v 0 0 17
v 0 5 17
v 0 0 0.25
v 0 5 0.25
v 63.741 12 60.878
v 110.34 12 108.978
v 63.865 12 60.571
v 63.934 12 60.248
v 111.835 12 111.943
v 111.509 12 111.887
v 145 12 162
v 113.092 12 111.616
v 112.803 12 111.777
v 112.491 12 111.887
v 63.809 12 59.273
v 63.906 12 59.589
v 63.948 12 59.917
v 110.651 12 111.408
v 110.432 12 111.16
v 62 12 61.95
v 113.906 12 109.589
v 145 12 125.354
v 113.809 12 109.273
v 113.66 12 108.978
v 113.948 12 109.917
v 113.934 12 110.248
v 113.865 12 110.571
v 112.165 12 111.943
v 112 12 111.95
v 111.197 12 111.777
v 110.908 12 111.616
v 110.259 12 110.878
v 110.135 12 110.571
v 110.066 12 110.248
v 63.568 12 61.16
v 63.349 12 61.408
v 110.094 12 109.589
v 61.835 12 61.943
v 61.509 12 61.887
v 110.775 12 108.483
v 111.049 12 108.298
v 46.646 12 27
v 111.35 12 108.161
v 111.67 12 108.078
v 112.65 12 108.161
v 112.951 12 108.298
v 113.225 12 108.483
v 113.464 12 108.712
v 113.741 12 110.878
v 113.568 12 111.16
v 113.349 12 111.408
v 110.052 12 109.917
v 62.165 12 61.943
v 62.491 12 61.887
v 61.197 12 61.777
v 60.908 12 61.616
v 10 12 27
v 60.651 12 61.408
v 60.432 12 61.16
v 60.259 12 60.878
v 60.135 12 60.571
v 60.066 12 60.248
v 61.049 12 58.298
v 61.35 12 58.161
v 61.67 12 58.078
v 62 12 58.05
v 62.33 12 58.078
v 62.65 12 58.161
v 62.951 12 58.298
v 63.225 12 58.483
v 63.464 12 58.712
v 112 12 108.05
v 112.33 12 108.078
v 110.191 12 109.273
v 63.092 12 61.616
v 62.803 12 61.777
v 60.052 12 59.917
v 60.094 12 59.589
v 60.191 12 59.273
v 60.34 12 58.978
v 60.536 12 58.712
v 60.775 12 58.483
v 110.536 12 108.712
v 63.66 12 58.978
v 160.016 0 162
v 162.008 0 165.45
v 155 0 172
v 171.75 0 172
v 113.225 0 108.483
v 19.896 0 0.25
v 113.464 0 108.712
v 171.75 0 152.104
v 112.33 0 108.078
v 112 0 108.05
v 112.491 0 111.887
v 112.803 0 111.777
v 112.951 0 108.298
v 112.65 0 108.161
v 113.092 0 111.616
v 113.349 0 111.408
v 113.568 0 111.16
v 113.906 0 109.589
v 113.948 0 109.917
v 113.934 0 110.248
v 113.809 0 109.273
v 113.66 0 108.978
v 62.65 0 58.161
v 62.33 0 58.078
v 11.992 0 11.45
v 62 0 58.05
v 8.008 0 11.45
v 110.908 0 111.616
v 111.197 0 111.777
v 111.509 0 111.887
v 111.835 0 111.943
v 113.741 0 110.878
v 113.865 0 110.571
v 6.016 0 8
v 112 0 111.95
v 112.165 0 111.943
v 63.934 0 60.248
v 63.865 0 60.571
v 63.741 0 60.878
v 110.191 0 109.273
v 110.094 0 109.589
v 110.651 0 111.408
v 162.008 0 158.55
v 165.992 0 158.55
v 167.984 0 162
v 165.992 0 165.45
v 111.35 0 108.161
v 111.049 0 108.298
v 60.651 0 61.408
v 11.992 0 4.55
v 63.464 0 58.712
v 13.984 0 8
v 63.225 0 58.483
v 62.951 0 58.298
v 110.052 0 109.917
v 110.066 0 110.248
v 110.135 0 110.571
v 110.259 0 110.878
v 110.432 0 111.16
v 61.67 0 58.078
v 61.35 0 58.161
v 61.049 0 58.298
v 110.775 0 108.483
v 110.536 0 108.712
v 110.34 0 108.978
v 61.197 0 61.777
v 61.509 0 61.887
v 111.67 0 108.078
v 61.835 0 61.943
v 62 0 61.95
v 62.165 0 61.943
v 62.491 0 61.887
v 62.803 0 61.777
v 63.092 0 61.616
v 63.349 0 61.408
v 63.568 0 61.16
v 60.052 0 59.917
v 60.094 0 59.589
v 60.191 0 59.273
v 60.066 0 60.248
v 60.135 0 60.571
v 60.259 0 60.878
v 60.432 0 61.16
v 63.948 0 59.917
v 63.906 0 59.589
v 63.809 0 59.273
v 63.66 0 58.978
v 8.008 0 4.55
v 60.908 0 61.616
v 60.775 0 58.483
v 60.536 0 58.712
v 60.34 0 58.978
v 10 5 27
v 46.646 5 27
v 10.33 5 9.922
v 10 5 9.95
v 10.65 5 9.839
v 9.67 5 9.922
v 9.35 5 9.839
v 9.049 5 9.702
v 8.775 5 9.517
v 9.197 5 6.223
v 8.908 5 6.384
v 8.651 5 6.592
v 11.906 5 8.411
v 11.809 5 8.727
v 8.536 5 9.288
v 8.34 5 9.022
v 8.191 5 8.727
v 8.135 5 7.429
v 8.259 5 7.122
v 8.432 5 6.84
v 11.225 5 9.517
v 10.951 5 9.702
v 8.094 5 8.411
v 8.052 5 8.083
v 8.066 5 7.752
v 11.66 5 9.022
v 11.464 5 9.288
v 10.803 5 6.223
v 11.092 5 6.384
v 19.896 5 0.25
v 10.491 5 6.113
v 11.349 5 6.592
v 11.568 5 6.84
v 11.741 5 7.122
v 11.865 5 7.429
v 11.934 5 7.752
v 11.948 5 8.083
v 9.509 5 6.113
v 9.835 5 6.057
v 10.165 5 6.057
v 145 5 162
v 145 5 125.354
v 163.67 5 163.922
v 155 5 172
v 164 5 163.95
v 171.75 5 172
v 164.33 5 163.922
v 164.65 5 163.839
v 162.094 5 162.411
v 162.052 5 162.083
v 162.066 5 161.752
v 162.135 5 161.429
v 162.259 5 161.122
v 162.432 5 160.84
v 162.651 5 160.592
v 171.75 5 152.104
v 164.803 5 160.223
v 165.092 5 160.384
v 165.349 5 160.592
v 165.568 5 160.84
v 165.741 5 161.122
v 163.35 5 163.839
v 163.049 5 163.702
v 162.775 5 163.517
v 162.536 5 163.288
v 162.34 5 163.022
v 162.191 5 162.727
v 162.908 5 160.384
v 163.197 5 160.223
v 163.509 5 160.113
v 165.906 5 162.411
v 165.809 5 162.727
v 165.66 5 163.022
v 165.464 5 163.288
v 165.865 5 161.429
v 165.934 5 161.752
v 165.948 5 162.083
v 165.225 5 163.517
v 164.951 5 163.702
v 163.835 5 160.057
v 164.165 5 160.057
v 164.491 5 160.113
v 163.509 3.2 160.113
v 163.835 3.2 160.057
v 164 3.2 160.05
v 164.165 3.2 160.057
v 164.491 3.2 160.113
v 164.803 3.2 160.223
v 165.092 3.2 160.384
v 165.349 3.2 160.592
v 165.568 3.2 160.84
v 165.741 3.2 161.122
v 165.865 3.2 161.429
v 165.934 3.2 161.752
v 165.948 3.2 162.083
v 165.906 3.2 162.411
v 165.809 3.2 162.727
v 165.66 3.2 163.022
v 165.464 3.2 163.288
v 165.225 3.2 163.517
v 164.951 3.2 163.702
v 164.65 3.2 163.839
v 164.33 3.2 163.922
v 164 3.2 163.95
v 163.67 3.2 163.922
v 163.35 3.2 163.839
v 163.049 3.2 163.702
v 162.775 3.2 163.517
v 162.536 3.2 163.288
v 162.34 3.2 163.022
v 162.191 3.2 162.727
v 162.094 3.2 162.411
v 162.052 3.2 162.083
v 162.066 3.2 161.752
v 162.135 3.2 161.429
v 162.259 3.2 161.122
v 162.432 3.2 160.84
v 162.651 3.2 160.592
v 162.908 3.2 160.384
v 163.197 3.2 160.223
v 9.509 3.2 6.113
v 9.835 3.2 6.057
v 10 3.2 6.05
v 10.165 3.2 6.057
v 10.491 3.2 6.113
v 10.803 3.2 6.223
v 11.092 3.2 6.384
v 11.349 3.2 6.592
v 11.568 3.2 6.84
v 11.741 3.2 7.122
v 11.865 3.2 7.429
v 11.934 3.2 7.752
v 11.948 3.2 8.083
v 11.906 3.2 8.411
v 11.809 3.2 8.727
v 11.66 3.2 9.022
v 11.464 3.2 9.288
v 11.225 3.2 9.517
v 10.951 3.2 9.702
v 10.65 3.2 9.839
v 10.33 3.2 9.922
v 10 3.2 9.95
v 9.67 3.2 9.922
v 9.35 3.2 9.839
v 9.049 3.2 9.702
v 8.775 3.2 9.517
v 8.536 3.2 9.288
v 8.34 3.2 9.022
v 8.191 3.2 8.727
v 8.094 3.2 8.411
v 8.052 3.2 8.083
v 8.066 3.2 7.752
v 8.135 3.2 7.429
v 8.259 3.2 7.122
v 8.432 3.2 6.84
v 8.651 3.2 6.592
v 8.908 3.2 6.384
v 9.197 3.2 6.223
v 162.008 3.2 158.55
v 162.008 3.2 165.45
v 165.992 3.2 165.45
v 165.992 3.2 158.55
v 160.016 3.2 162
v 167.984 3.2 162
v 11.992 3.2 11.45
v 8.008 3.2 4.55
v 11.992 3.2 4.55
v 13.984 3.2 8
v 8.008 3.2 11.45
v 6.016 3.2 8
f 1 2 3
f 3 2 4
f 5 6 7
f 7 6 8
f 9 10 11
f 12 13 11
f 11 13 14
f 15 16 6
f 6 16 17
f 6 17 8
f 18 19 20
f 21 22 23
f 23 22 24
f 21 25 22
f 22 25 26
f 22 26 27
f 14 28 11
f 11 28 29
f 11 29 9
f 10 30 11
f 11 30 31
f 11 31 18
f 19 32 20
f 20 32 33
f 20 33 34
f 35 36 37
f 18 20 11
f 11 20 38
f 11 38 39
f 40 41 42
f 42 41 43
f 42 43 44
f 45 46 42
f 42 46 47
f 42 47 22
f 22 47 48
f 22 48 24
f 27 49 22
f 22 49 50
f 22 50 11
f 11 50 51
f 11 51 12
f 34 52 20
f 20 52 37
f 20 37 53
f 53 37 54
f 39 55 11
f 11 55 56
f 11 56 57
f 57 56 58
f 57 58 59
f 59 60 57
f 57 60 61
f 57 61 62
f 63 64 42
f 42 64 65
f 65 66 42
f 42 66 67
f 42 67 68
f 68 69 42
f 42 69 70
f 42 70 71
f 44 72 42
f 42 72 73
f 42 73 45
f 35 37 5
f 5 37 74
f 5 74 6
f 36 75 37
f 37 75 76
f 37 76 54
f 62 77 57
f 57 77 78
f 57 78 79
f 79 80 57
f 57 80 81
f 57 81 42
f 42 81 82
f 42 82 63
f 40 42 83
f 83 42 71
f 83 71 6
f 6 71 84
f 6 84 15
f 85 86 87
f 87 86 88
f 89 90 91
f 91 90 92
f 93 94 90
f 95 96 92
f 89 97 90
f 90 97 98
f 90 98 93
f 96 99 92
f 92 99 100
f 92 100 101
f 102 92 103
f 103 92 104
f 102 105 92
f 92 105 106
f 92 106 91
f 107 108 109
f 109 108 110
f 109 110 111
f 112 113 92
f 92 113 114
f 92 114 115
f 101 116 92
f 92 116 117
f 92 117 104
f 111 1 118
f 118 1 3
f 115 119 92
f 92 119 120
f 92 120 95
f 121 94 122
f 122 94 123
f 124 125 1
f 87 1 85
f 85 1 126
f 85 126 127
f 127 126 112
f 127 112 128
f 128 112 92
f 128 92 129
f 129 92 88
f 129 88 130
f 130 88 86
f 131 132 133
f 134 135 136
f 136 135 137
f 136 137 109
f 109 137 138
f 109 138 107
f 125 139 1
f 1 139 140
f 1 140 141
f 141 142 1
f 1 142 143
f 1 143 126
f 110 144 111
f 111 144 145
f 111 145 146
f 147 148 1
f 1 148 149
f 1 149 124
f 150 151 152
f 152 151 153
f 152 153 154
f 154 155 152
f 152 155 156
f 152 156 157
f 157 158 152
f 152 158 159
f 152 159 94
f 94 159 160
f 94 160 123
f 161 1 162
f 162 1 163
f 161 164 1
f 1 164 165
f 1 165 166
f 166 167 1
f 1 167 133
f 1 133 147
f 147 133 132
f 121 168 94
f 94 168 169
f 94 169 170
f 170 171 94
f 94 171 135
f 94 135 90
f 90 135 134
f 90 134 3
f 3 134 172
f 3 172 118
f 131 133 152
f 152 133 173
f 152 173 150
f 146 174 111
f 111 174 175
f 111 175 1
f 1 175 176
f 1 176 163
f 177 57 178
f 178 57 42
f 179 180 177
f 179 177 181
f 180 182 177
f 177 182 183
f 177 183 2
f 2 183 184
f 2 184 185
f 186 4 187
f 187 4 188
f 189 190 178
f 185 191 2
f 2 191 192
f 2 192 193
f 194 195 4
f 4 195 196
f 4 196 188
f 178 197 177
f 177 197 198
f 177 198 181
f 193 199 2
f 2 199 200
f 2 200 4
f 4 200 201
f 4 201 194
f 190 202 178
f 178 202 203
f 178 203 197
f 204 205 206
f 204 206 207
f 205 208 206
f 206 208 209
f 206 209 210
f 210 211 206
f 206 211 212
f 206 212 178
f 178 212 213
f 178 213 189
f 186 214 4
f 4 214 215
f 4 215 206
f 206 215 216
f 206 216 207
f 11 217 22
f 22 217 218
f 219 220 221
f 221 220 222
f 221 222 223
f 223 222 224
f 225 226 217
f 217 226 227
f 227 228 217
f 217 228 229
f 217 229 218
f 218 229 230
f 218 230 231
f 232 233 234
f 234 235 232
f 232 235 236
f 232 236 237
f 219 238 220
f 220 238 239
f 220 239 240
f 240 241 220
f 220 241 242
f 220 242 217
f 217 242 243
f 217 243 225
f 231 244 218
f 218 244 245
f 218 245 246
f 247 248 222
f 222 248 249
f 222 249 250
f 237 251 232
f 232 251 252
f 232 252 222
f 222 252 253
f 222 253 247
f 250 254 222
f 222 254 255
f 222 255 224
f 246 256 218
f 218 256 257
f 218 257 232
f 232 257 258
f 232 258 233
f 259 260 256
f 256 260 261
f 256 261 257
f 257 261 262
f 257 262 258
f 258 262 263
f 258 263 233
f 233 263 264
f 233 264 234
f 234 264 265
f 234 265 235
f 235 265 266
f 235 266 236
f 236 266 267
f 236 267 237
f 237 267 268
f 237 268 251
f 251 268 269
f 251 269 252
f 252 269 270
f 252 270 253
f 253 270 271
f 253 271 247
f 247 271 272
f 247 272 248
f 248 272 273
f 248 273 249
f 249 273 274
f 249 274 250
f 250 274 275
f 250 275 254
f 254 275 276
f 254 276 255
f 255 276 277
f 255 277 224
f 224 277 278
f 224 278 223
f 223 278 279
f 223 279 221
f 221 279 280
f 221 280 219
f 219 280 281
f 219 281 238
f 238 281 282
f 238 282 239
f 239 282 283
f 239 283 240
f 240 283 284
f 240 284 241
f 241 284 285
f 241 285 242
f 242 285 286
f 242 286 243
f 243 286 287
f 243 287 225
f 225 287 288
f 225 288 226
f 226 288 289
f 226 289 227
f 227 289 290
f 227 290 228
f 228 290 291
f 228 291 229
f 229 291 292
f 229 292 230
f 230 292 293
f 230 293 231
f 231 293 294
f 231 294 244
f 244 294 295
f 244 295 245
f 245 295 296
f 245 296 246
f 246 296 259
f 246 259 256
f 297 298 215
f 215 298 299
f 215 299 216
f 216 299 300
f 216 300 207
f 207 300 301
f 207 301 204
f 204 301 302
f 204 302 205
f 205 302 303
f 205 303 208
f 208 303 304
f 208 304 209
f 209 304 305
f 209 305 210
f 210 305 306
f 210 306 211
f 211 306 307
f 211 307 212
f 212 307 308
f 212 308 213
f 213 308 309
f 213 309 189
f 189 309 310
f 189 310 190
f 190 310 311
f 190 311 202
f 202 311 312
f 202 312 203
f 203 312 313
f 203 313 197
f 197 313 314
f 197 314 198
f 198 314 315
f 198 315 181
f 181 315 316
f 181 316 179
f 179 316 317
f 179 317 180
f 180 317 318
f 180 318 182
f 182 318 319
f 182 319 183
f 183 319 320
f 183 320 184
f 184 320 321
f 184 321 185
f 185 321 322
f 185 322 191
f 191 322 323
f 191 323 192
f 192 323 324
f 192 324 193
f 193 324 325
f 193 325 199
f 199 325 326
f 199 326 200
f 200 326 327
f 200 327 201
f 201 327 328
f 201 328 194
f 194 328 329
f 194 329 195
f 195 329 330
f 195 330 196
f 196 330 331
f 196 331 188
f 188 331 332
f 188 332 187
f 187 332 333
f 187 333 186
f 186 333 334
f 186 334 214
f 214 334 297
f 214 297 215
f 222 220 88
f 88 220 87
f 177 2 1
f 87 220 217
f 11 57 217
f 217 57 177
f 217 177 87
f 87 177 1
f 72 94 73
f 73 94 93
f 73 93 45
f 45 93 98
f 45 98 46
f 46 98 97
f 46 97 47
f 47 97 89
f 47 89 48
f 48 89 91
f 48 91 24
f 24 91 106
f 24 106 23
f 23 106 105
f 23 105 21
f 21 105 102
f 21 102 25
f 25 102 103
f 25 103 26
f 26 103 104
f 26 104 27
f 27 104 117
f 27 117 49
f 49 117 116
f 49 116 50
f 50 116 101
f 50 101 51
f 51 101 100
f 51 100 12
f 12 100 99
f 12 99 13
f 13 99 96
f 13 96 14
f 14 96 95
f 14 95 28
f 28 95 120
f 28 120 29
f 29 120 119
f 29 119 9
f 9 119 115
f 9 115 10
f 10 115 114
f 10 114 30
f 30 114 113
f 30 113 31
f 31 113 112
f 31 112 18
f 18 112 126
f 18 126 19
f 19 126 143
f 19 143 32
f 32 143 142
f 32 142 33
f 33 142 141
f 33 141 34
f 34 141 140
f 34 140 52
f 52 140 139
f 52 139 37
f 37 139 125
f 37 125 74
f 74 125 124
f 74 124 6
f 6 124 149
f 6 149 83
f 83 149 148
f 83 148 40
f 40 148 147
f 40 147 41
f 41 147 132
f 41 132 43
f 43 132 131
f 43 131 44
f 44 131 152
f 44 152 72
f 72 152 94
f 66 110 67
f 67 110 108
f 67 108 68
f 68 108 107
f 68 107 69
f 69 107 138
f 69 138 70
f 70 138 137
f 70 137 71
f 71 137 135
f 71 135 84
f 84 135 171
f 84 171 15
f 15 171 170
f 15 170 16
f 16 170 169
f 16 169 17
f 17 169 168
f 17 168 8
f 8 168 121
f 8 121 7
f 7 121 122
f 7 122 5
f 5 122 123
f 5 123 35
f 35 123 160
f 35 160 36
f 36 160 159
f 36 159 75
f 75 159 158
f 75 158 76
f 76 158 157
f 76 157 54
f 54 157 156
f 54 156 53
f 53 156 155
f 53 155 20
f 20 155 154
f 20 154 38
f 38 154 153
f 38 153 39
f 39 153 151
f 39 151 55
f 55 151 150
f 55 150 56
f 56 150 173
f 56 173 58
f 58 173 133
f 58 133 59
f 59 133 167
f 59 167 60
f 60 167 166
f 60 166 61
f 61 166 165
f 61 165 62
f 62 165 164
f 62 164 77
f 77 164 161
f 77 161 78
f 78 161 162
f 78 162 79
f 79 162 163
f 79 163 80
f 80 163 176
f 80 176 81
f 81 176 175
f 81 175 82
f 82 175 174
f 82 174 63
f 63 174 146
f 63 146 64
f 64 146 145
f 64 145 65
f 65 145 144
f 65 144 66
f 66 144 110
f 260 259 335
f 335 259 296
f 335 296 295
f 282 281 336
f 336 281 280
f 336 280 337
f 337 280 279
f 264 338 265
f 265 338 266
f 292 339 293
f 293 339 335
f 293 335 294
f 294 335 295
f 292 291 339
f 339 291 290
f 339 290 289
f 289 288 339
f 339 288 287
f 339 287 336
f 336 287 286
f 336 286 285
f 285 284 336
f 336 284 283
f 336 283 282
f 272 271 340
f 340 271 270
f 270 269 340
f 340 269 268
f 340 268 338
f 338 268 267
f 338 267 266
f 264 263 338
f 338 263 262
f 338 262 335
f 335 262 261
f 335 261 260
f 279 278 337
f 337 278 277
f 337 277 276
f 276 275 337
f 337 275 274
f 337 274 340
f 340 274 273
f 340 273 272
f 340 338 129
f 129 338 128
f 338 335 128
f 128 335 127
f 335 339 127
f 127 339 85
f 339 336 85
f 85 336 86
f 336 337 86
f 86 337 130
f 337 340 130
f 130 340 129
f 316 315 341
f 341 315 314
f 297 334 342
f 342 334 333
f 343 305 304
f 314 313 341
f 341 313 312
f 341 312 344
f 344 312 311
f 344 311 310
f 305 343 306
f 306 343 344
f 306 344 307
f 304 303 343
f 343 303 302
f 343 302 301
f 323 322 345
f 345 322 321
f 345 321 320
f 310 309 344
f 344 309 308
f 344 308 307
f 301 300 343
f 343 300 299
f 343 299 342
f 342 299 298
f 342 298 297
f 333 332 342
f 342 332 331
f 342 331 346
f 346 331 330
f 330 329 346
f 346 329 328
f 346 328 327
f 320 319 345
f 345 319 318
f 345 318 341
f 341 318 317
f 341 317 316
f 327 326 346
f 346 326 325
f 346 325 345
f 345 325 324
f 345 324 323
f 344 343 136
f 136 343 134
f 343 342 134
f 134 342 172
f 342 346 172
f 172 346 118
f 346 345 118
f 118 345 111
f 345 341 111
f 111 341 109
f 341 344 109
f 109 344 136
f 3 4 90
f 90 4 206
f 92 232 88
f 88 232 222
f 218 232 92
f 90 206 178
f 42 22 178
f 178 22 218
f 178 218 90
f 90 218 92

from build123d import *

# Parameters (mm, degrees)
BOSS_EXTRUDE1_DEPTH      = 12
SKETCH2_R                = 1.95
CUT_EXTRUDE1_DEPTH       = 244.540551038
SKETCH3_W                = 47
SKETCH3_H                = 27
SKETCH3_W_2              = 27
SKETCH3_H_2              = 47
CUT_EXTRUDE2_DEPTH       = 7
CUT_EXTRUDE8_DEPTH       = 244.540551038
CUT_EXTRUDE8_DEPTH_BACK  = 244.540551038
SKETCH5_R                = 1.95
CUT_EXTRUDE9_DEPTH       = 3.2
CUT_EXTRUDE10_DEPTH      = 244.540551038
CUT_EXTRUDE10_DEPTH_BACK = 244.540551038


with BuildPart() as part:
    # Sketch1 → Boss-Extrude1 (new body)
    with BuildSketch(Plane(origin=(0, 0, 0), x_dir=(1, 0, 0), z_dir=(0, 1, 0))):
        Polygon((0, 0), (20, 0), (172, -152), (172, -172), (155, -172), (0, -17), align=None)
    extrude(amount=BOSS_EXTRUDE1_DEPTH)

    # Sketch2 → Cut-Extrude1 (cut, through all)
    with BuildSketch(Plane(origin=(0, 12, 0), x_dir=(1, 0, 0), z_dir=(0, 1, 0))):
        with Locations(Location((10, -8, 0), (0, 0, 270))):
            Circle(SKETCH2_R)
        with Locations(Location((164, -162, 0), (0, 0, 270))):
            Circle(SKETCH2_R)
    extrude(amount=-CUT_EXTRUDE1_DEPTH, mode=Mode.SUBTRACT)

    # Sketch3 → Cut-Extrude2 (cut)
    with BuildSketch(Plane(origin=(0, 12, 0), x_dir=(1, 0, 0), z_dir=(0, 1, 0))):
        with Locations((23.5, -13.5)):
            Rectangle(SKETCH3_W, SKETCH3_H)
        with Locations((158.5, -148.5)):
            Rectangle(SKETCH3_W_2, SKETCH3_H_2)
    extrude(amount=-CUT_EXTRUDE2_DEPTH, mode=Mode.SUBTRACT)

    # Sketch5 → Cut-Extrude8 (cut, two sides: drawn at the far end of the back side and taken through both)
    with BuildSketch(Plane(origin=(0, 0, 0), x_dir=(1, 0, 0), z_dir=(0, 1, 0)).offset(-CUT_EXTRUDE8_DEPTH_BACK)):
        with Locations(Location((62, -60, 0), (0, 0, 270))):
            Circle(SKETCH5_R)
        with Locations(Location((112, -110, 0), (0, 0, 270))):
            Circle(SKETCH5_R)
    extrude(amount=CUT_EXTRUDE8_DEPTH + CUT_EXTRUDE8_DEPTH_BACK, mode=Mode.SUBTRACT)

    # Sketch7 → Cut-Extrude9 (cut)
    with BuildSketch(Plane.XZ):
        Polygon((13.983716857, 8), (11.991858429, 11.45), (8.008141571, 11.45), (6.016283143, 8), (8.008141571, 4.55), (11.991858429, 4.55), align=None)
        Polygon((167.983716857, 162), (165.991858429, 165.45), (162.008141571, 165.45), (160.016283143, 162), (162.008141571, 158.55), (165.991858429, 158.55), align=None)
    extrude(amount=-CUT_EXTRUDE9_DEPTH, mode=Mode.SUBTRACT)

    # Sketch8 → Cut-Extrude10 (cut, two sides: drawn at the far end of the back side and taken through both)
    with BuildSketch(Plane.XZ.offset(-CUT_EXTRUDE10_DEPTH_BACK)):
        Polygon((0, 0.25), (0, 0), (20, 0), (172, 152), (172, 172), (171.75, 172), (171.75, 152.103553391), (19.896446609, 0.25), align=None)
    extrude(amount=CUT_EXTRUDE10_DEPTH + CUT_EXTRUDE10_DEPTH_BACK, mode=Mode.SUBTRACT)


solid = part.part
